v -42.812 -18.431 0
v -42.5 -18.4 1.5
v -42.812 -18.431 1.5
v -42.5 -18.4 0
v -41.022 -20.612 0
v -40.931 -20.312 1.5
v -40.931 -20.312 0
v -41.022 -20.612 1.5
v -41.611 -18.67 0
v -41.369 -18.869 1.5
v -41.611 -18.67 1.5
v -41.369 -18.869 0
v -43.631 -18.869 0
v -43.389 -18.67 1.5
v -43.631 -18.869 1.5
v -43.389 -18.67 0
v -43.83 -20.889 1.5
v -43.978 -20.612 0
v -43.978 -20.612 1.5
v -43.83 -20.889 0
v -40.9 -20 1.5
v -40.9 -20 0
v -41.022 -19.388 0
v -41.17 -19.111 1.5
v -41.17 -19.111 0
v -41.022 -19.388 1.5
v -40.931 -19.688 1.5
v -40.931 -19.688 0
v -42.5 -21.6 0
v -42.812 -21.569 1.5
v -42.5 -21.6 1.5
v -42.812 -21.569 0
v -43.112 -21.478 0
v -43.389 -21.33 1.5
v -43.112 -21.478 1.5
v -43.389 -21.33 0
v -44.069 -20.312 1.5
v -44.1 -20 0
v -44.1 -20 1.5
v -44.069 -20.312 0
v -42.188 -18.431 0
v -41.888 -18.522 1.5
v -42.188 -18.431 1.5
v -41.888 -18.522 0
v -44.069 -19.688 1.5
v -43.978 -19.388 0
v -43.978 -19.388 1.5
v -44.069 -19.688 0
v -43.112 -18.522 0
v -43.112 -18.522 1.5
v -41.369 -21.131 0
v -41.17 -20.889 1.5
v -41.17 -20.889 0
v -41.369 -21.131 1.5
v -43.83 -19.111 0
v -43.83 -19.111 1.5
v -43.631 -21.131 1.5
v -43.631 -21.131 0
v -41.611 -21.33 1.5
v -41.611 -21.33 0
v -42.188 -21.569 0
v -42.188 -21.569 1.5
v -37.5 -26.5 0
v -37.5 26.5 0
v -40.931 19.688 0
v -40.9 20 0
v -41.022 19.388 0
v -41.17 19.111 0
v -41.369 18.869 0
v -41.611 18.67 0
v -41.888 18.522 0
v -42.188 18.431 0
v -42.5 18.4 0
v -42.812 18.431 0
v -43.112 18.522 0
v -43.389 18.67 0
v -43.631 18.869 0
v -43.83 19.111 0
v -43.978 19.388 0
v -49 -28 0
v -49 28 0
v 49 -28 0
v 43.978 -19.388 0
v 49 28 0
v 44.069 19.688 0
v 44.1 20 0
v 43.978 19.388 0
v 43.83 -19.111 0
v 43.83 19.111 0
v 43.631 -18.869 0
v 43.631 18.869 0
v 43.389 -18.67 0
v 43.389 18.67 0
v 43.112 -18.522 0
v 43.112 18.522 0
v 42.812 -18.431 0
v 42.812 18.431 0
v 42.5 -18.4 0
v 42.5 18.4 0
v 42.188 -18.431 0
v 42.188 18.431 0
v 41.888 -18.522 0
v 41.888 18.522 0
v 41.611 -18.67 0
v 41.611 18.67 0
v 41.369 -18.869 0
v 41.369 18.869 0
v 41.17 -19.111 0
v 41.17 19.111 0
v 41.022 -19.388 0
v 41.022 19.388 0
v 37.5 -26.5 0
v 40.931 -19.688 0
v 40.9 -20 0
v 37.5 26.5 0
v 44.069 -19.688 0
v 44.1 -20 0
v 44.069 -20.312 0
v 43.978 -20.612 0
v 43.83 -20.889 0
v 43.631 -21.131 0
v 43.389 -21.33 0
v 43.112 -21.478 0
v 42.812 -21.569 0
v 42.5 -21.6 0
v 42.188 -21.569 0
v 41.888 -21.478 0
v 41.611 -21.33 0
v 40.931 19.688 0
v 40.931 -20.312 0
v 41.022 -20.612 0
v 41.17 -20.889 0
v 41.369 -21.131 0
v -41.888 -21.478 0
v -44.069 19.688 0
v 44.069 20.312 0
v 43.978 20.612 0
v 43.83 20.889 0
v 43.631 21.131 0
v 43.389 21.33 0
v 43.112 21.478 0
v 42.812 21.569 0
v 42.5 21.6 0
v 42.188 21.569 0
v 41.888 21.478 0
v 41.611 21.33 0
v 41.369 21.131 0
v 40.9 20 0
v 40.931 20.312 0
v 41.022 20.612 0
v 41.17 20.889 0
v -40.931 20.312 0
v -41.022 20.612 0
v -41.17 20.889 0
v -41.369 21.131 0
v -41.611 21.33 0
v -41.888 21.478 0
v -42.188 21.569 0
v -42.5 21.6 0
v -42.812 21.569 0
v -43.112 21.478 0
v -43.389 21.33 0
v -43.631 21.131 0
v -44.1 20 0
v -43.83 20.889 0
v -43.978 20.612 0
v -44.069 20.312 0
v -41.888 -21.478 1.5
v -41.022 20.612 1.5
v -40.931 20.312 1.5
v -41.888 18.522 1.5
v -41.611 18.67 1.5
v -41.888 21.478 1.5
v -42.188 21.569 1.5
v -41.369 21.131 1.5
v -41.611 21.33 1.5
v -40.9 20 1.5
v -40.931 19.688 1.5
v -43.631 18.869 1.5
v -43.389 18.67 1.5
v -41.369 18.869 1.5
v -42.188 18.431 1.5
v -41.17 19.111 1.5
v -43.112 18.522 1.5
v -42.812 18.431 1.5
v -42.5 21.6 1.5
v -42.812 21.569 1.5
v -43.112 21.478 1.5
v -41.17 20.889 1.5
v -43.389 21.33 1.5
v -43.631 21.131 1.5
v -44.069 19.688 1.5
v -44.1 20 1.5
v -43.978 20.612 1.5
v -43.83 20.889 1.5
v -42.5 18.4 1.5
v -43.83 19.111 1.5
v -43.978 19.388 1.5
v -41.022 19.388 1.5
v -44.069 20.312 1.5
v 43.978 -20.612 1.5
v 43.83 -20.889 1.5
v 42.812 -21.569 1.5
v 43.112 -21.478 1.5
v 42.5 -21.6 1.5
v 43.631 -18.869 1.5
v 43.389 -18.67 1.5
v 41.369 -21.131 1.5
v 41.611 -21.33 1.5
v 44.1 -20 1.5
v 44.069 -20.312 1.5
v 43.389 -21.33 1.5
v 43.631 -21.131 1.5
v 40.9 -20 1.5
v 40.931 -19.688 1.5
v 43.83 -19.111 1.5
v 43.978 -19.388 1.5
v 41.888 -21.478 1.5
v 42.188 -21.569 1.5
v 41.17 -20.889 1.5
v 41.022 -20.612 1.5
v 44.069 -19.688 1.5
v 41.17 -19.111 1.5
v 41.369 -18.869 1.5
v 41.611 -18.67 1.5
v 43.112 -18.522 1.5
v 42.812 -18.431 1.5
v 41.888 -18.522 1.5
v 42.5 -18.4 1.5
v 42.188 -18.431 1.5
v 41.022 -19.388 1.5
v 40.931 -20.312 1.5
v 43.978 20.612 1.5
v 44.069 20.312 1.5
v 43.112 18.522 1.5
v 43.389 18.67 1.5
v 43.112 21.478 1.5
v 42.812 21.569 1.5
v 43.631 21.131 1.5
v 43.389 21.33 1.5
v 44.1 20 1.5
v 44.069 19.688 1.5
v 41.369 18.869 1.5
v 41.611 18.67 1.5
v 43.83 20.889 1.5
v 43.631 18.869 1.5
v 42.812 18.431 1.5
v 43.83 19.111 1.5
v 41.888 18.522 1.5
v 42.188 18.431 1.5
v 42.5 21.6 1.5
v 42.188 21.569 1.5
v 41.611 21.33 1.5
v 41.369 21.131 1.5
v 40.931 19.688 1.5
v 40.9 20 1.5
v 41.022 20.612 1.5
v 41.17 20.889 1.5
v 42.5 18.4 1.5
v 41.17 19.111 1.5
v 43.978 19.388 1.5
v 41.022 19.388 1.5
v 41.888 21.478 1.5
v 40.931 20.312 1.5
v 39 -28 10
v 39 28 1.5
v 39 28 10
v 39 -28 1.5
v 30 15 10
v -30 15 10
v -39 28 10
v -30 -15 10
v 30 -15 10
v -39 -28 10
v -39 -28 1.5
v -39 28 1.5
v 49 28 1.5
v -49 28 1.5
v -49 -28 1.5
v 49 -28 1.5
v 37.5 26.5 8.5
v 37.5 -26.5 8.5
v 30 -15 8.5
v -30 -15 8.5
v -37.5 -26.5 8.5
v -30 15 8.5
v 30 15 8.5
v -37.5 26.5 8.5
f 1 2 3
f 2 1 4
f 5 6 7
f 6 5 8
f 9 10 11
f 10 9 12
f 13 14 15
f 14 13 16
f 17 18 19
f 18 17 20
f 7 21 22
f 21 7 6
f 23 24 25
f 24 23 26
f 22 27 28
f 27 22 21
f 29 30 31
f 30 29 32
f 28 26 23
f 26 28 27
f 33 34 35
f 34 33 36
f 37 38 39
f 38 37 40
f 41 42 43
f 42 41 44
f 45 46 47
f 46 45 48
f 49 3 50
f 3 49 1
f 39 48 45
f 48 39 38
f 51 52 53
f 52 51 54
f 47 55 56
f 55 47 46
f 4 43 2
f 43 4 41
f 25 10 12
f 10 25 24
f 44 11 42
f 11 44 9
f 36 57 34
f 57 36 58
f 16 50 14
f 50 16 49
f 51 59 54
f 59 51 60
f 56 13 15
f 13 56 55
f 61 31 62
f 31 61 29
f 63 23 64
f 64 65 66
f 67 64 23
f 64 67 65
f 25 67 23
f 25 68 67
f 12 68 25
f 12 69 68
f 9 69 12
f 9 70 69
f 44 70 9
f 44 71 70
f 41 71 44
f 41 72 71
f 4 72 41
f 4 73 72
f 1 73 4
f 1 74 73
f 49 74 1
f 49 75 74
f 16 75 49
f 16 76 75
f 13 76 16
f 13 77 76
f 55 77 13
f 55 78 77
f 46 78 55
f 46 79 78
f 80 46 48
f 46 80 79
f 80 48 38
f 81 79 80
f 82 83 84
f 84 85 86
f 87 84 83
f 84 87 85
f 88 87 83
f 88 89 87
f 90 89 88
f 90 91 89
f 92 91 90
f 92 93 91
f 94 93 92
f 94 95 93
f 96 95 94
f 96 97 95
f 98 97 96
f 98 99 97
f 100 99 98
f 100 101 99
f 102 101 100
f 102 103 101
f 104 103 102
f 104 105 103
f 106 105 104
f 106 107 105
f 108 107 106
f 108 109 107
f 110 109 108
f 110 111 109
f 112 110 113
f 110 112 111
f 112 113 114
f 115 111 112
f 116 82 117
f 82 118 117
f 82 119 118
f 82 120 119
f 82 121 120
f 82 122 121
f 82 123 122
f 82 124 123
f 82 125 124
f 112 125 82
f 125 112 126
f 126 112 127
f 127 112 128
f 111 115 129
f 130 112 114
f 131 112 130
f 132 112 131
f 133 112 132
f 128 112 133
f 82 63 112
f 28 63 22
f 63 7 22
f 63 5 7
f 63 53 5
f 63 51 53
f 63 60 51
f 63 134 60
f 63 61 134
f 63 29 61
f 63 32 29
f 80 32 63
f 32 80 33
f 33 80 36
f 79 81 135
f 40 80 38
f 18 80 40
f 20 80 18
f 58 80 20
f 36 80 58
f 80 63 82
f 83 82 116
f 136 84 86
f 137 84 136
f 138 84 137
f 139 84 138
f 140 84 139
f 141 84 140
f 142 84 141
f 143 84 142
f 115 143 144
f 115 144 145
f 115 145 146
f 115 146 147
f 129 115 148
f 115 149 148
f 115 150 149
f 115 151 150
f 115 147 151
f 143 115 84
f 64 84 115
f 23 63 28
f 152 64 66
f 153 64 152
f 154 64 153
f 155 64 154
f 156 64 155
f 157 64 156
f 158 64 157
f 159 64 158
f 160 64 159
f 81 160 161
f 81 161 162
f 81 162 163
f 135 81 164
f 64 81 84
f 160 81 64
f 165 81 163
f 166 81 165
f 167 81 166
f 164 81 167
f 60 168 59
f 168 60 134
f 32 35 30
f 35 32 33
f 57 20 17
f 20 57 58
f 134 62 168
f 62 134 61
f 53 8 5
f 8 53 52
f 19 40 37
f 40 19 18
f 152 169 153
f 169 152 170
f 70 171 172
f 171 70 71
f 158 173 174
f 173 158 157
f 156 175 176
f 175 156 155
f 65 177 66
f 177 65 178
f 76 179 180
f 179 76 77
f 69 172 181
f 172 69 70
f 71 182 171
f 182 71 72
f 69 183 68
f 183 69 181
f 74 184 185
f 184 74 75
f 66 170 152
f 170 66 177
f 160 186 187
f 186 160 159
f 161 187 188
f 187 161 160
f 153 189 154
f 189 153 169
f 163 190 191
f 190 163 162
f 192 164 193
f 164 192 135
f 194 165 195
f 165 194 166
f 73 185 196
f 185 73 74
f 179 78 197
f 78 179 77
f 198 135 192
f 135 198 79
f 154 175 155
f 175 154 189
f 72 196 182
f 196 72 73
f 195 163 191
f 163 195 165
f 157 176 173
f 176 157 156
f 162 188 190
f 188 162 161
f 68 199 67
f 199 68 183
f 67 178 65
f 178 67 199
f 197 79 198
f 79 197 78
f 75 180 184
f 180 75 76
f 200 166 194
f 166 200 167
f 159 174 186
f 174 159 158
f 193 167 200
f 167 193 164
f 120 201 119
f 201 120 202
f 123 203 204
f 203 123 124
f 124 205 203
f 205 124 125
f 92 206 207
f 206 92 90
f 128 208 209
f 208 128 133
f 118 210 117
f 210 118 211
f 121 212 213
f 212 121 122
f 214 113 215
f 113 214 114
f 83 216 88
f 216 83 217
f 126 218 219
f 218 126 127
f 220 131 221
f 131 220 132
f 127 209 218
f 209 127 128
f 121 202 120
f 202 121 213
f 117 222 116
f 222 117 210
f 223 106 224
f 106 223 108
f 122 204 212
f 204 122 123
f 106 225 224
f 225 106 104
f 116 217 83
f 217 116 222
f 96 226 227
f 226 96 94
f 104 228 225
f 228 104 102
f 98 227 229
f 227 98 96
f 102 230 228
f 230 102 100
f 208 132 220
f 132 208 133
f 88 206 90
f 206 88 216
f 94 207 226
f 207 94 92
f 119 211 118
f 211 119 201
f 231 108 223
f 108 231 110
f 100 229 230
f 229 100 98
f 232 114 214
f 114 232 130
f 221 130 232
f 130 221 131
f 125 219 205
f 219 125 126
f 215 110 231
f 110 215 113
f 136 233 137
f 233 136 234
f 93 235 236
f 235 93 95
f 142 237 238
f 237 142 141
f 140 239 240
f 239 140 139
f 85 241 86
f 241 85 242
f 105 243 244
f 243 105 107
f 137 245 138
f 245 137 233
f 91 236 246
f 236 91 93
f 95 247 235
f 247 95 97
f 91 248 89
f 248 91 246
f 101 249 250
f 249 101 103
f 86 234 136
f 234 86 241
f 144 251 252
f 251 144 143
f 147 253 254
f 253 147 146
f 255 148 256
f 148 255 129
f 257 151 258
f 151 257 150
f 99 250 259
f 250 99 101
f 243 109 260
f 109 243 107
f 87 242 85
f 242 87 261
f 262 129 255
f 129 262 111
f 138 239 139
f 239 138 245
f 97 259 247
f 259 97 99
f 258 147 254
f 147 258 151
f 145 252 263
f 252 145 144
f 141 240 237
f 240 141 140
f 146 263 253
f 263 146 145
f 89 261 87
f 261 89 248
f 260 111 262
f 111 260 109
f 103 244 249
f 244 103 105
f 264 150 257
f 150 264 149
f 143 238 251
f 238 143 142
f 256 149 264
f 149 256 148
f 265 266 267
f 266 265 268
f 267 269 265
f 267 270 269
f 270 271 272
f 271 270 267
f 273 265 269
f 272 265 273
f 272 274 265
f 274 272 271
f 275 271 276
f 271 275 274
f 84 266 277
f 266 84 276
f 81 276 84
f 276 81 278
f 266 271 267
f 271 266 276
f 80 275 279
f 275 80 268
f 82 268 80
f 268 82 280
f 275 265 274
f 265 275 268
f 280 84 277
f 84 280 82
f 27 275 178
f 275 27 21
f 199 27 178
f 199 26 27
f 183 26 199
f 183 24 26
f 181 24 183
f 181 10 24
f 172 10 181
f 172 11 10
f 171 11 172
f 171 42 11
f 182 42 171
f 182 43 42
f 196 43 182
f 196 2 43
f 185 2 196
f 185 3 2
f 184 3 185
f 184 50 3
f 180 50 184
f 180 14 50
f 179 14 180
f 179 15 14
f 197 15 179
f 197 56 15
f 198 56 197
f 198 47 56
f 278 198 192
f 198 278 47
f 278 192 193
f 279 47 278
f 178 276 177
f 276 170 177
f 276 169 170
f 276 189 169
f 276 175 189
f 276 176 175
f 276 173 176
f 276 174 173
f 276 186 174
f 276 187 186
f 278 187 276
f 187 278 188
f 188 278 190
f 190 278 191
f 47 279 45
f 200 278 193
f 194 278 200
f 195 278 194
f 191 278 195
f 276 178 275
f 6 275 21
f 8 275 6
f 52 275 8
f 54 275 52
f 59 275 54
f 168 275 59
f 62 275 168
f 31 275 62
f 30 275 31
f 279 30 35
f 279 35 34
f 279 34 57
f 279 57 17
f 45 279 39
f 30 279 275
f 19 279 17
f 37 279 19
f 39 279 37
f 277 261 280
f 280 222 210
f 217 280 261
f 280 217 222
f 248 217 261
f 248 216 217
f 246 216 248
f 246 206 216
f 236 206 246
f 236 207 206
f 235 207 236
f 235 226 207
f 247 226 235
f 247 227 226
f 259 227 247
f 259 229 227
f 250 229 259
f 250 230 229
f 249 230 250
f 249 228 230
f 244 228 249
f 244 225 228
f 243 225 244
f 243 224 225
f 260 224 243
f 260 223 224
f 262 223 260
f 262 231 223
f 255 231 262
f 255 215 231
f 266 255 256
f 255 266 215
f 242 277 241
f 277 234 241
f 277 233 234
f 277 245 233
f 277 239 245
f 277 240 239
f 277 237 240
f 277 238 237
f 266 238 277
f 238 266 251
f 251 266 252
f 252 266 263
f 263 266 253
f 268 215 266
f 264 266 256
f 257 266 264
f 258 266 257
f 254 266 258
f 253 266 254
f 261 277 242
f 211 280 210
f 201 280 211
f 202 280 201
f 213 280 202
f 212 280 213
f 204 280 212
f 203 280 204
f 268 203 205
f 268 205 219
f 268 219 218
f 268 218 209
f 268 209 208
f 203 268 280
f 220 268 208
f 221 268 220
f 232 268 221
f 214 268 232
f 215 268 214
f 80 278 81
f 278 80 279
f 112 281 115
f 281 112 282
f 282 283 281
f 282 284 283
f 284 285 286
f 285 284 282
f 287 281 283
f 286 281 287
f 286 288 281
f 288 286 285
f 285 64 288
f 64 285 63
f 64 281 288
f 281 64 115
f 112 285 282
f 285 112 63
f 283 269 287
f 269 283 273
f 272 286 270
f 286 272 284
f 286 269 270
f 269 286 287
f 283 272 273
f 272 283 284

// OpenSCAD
difference() {
    union() {
        cube_center([78,56,10]);
        cube_center([78+20,56,1.5]);
    }
    cube_center([75,53,8.5]);
    for(s=[-1,1]) for(t=[-1,1])
    translate([(75/2+5)*s,20*t,0])
    cylinder(d=3.2,h=10,$fn=32);
    
    cube_center([60,30,100]);
}

module cube_center(dims,r=0) {
    if(r==0) {
        translate([-dims[0]/2, -dims[1]/2, 0])
        cube(dims);
    } else {
        
        minkowski() {
            translate([-dims[0]/2+r, -dims[1]/2+r, 0])
            cube([dims[0]-2*r,dims[1]-2*r,dims[2]]);
            cylinder(r=r,h=0.00001,$fn=32);
        }
    }
}
